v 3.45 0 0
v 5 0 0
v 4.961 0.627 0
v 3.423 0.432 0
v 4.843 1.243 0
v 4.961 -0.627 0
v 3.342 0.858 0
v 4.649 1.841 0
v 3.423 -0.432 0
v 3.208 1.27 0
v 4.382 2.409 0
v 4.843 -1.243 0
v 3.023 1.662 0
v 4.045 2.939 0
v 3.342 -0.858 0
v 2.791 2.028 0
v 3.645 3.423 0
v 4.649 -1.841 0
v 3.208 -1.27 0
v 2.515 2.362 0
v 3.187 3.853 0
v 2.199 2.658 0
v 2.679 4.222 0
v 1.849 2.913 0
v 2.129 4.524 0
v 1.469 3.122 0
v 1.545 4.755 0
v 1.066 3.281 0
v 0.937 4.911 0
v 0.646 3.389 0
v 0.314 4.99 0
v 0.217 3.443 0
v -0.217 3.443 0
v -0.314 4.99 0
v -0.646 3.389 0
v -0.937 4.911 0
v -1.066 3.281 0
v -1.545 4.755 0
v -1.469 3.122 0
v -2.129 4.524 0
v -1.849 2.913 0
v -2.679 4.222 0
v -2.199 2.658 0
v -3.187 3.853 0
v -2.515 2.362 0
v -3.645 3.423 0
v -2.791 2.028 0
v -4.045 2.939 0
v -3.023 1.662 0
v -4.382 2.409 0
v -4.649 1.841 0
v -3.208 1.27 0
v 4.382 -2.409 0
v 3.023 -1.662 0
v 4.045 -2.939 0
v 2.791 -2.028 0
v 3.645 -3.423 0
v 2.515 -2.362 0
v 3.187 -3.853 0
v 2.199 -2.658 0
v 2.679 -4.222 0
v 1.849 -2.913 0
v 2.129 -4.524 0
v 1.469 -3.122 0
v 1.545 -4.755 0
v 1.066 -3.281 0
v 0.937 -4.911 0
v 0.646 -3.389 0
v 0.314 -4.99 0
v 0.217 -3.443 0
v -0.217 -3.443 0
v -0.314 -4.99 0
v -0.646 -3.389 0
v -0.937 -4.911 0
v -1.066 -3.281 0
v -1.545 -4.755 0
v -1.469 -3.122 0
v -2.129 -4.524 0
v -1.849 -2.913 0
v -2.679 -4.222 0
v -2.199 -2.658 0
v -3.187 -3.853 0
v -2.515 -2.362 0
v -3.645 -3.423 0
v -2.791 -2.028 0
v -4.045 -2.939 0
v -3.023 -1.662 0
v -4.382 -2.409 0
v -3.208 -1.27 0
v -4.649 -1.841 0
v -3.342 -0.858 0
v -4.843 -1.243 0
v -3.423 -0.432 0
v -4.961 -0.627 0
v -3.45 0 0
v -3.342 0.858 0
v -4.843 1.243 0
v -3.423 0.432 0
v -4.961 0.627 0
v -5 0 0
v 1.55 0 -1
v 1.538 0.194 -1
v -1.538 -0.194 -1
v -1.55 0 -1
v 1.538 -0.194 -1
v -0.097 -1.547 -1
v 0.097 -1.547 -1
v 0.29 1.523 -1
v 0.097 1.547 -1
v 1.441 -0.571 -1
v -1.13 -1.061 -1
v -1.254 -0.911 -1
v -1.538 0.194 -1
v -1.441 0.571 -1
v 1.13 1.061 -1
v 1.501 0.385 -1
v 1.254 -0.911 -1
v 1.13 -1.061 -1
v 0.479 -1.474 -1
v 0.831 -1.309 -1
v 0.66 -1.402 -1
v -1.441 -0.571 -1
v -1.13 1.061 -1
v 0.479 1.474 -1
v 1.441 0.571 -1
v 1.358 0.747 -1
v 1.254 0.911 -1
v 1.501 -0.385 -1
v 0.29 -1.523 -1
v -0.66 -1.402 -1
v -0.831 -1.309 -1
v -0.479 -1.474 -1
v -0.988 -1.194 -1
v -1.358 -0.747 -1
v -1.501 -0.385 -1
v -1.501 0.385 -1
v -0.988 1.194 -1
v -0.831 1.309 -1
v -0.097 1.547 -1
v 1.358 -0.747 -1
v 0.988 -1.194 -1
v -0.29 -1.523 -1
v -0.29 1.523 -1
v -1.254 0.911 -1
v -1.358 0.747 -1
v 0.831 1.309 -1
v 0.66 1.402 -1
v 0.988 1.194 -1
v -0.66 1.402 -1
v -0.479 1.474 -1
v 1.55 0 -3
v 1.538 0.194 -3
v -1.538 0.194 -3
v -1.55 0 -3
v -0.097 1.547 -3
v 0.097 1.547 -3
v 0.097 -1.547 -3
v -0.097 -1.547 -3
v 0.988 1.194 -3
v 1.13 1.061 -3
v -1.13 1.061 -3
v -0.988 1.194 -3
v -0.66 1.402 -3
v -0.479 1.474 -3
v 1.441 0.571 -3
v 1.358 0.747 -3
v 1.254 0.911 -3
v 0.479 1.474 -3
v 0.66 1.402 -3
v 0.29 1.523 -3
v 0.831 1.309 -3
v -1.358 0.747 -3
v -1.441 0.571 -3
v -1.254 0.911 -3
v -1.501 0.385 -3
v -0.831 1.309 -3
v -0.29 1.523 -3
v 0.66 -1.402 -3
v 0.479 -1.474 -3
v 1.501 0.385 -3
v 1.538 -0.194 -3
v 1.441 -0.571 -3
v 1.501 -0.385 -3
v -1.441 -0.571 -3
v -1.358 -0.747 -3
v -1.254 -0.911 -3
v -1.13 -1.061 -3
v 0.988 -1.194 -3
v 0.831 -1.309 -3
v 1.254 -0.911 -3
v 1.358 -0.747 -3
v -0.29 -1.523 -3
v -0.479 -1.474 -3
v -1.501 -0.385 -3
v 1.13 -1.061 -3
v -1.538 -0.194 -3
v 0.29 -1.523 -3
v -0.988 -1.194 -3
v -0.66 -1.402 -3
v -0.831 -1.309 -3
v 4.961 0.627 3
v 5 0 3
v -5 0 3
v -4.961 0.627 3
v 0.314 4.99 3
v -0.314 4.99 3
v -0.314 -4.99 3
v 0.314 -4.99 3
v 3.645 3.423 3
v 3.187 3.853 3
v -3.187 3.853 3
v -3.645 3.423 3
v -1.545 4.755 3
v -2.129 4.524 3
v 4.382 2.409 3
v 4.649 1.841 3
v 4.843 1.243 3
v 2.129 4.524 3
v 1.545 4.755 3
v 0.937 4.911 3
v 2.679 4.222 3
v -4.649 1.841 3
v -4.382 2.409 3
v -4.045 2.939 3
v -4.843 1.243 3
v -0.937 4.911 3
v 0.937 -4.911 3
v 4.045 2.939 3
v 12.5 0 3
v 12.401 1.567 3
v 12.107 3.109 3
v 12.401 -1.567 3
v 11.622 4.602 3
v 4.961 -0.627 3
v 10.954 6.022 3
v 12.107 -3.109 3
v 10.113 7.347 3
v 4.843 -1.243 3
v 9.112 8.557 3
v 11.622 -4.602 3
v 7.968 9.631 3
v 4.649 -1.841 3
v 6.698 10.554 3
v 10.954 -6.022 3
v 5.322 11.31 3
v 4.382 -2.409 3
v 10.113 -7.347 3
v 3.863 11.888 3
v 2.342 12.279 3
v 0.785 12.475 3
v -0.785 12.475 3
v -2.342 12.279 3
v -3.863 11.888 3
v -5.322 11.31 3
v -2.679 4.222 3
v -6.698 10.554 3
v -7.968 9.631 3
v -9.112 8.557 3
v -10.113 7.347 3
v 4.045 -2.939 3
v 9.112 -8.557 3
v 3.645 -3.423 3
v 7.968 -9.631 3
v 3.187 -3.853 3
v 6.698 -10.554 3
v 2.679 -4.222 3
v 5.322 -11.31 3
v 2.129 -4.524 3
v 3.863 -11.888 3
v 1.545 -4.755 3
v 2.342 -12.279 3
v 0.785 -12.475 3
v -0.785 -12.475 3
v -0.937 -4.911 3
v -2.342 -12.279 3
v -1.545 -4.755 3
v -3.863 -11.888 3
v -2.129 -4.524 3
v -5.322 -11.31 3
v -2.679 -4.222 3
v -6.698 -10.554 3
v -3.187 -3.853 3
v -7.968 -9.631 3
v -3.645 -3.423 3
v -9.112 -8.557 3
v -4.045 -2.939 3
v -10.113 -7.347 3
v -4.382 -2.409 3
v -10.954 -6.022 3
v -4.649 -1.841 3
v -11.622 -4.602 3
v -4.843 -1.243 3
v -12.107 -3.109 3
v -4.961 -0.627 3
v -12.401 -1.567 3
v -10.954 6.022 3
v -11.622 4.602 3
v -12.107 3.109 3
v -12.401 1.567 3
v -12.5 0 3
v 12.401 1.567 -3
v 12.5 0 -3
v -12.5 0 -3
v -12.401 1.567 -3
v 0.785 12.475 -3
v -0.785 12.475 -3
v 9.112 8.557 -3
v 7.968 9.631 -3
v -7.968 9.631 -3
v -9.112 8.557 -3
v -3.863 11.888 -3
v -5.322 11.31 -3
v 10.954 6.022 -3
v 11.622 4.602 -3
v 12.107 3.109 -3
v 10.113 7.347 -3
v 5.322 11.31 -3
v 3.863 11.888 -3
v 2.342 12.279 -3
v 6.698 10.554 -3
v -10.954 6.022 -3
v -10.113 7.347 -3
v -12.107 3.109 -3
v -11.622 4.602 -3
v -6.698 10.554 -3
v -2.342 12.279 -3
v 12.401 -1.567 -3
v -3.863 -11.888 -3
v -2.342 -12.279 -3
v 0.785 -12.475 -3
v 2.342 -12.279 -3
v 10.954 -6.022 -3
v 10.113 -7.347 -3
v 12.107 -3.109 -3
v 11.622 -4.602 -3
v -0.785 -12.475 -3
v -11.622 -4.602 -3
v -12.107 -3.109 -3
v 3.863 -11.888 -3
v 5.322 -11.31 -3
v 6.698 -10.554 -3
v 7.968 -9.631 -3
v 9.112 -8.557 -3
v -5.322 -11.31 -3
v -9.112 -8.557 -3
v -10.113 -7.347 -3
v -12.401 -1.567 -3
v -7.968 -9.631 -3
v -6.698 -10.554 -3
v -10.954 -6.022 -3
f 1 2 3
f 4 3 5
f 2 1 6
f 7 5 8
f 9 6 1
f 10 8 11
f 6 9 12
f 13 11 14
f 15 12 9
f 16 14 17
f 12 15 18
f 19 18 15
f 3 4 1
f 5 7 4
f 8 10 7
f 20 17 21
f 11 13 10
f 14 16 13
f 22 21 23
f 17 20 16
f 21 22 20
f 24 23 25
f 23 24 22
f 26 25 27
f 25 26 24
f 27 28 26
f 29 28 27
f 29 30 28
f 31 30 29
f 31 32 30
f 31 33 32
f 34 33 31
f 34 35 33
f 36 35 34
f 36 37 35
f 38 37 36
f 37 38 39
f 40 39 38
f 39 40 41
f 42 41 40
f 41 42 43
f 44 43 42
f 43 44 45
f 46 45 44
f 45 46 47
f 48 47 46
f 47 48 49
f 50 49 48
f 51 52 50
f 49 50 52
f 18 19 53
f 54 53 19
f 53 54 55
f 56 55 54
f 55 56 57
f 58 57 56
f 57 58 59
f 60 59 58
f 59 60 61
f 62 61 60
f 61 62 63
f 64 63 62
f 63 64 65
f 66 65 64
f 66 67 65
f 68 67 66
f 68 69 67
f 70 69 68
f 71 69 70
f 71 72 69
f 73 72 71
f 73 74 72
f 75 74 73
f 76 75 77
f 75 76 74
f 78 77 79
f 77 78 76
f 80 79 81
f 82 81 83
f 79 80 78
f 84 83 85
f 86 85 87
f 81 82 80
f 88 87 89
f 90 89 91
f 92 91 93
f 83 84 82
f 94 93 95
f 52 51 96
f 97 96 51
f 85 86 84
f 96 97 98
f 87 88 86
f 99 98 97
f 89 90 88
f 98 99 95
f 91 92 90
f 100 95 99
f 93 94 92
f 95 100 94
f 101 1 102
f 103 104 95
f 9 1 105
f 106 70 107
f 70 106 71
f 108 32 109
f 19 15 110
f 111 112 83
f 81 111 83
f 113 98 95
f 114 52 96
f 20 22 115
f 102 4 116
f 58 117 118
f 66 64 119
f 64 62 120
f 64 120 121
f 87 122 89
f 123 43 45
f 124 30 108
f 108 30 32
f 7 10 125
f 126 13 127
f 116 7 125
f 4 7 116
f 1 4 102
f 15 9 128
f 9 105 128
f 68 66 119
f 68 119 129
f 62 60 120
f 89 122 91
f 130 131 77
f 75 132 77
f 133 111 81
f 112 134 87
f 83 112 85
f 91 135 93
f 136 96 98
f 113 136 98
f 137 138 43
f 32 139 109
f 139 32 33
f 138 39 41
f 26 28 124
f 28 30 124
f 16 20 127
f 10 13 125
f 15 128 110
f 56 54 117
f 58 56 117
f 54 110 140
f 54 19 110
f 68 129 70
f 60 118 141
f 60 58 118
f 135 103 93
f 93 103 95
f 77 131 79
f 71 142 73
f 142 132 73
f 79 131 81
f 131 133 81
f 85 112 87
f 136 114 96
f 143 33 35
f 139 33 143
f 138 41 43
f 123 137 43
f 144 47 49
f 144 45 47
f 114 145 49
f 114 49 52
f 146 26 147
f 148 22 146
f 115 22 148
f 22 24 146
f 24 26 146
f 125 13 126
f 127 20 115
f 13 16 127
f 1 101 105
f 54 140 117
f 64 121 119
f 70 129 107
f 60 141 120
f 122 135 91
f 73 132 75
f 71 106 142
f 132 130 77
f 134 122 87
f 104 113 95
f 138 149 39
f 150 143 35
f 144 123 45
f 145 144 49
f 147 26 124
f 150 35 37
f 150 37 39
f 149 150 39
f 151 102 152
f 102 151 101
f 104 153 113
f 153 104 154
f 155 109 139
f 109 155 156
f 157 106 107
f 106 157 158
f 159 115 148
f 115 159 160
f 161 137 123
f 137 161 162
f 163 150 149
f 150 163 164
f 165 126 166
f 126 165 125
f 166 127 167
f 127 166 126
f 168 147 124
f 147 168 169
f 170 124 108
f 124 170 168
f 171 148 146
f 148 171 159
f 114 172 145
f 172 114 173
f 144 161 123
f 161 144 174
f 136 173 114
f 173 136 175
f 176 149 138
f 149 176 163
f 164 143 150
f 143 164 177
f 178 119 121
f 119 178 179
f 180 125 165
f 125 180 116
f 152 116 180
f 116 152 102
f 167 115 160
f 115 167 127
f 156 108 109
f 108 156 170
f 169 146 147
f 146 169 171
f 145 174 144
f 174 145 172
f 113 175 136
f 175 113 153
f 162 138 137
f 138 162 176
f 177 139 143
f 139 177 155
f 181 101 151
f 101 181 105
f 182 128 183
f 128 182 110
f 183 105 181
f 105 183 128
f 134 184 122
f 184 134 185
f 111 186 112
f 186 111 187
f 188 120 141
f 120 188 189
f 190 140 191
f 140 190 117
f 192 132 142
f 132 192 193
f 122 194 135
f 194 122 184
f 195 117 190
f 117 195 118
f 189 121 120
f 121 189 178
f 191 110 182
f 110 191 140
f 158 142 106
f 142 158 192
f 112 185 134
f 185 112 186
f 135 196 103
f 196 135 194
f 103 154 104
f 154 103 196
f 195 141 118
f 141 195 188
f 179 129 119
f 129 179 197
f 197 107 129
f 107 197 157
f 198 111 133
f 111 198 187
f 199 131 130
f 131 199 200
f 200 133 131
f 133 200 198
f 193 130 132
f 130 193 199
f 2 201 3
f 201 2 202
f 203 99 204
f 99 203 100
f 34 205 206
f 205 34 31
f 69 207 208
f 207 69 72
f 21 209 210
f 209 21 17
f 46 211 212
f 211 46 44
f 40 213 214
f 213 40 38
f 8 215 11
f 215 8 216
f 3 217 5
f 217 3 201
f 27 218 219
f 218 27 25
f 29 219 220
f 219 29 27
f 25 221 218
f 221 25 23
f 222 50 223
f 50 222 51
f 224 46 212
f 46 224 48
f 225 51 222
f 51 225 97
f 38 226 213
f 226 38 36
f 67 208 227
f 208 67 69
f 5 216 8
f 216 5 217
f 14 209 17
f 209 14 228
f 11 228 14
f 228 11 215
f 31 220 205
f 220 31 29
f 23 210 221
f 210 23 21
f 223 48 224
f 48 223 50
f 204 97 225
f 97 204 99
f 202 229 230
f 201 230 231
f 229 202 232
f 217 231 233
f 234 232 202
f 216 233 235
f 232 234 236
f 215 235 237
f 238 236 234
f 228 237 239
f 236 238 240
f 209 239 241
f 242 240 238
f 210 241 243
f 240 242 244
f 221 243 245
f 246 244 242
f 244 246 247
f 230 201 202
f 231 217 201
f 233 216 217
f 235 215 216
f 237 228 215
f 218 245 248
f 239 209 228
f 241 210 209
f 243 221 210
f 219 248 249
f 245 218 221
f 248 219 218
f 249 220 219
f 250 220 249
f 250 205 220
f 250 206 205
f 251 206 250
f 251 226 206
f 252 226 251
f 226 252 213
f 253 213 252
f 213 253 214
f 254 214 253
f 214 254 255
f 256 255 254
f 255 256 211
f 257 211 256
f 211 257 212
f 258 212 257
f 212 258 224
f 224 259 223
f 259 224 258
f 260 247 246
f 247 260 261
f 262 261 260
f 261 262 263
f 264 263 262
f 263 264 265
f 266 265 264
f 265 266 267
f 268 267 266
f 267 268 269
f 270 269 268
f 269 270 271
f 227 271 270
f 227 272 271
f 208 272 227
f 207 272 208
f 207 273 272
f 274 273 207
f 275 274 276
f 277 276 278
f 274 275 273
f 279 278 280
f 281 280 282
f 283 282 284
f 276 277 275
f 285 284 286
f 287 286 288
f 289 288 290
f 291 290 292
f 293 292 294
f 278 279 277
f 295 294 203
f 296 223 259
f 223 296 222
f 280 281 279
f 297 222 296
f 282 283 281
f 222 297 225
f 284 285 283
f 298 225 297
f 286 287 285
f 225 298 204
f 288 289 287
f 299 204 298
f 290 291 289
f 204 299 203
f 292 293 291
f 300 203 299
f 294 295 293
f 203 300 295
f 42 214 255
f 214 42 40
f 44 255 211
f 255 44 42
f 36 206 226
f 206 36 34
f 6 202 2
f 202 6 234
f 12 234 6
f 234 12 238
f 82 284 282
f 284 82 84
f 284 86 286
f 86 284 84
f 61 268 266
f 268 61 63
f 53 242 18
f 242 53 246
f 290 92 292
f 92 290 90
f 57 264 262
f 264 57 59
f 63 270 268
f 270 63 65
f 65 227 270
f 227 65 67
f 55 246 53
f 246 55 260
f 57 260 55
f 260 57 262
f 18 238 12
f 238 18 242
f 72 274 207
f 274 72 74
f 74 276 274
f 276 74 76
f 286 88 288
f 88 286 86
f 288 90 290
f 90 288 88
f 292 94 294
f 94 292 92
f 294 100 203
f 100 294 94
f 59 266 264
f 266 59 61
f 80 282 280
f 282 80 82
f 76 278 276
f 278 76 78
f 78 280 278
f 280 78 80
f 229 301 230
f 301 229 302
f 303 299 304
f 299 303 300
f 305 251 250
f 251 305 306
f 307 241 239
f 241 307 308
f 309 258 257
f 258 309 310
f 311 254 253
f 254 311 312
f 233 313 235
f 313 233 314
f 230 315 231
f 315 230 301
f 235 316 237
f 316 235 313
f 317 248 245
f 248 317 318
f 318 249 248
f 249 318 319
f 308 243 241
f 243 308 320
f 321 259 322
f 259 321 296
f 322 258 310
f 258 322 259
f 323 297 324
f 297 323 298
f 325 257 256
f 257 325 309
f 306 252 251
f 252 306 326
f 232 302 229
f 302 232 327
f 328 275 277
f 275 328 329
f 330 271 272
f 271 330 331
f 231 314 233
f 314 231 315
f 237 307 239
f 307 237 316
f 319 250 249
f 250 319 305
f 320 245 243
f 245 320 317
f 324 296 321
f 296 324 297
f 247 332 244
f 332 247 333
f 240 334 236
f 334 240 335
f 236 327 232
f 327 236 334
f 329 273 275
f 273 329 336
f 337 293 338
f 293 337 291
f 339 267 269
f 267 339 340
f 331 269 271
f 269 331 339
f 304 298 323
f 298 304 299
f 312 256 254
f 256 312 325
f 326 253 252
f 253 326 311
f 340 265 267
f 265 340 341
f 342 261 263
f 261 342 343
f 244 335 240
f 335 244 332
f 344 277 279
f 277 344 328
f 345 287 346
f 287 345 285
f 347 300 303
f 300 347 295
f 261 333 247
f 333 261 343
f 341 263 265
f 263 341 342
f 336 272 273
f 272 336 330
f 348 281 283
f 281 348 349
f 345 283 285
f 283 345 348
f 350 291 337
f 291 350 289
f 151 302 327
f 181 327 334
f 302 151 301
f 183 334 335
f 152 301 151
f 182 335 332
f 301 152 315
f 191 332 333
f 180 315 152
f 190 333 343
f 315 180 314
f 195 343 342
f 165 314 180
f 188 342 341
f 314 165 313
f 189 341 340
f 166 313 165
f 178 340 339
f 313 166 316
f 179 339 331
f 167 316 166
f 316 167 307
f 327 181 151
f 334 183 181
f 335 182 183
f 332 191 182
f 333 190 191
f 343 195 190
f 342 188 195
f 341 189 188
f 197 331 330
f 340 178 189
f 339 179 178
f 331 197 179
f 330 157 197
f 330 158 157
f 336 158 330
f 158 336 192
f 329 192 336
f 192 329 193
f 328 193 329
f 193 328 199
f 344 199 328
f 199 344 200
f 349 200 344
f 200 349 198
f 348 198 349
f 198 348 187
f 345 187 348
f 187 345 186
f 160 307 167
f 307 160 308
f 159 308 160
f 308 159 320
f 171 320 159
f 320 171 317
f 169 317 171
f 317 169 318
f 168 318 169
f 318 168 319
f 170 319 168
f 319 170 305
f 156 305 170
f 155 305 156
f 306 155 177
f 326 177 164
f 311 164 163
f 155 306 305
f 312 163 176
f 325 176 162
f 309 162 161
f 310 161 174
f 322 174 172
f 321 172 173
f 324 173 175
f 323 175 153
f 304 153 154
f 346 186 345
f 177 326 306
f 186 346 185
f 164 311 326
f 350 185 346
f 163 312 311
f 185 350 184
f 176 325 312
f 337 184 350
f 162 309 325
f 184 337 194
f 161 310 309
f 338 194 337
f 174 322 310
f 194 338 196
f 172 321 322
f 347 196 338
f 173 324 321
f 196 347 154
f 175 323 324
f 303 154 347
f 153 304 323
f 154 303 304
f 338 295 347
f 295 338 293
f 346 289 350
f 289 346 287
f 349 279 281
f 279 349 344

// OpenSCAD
$fn = 50;

difference() {
	union() {
		translate(v = [0, 0, -3.0]) {
			cylinder(h = 6, r = 12.5);
		}
	}
	union() {
		translate(v = [0, 0, 0]) {
			rotate(a = [0, 0, 0]) {
				difference() {
					union() {
						translate(v = [0, 0, -6.0]) {
							cylinder(h = 6, r = 1.25);
						}
						translate(v = [0, 0, -1.0]) {
							cylinder(h = 1.0, r1 = 1.55, r2 = 3.45);
						}
						translate(v = [0, 0, -6.0]) {
							cylinder(h = 6, r = 1.55);
						}
						translate(v = [0, 0, -6.0]) {
							cylinder(h = 6, r = 1.25);
						}
					}
					union();
				}
			}
		}
		#cylinder(h = 3, r = 5.0);
	}
}
